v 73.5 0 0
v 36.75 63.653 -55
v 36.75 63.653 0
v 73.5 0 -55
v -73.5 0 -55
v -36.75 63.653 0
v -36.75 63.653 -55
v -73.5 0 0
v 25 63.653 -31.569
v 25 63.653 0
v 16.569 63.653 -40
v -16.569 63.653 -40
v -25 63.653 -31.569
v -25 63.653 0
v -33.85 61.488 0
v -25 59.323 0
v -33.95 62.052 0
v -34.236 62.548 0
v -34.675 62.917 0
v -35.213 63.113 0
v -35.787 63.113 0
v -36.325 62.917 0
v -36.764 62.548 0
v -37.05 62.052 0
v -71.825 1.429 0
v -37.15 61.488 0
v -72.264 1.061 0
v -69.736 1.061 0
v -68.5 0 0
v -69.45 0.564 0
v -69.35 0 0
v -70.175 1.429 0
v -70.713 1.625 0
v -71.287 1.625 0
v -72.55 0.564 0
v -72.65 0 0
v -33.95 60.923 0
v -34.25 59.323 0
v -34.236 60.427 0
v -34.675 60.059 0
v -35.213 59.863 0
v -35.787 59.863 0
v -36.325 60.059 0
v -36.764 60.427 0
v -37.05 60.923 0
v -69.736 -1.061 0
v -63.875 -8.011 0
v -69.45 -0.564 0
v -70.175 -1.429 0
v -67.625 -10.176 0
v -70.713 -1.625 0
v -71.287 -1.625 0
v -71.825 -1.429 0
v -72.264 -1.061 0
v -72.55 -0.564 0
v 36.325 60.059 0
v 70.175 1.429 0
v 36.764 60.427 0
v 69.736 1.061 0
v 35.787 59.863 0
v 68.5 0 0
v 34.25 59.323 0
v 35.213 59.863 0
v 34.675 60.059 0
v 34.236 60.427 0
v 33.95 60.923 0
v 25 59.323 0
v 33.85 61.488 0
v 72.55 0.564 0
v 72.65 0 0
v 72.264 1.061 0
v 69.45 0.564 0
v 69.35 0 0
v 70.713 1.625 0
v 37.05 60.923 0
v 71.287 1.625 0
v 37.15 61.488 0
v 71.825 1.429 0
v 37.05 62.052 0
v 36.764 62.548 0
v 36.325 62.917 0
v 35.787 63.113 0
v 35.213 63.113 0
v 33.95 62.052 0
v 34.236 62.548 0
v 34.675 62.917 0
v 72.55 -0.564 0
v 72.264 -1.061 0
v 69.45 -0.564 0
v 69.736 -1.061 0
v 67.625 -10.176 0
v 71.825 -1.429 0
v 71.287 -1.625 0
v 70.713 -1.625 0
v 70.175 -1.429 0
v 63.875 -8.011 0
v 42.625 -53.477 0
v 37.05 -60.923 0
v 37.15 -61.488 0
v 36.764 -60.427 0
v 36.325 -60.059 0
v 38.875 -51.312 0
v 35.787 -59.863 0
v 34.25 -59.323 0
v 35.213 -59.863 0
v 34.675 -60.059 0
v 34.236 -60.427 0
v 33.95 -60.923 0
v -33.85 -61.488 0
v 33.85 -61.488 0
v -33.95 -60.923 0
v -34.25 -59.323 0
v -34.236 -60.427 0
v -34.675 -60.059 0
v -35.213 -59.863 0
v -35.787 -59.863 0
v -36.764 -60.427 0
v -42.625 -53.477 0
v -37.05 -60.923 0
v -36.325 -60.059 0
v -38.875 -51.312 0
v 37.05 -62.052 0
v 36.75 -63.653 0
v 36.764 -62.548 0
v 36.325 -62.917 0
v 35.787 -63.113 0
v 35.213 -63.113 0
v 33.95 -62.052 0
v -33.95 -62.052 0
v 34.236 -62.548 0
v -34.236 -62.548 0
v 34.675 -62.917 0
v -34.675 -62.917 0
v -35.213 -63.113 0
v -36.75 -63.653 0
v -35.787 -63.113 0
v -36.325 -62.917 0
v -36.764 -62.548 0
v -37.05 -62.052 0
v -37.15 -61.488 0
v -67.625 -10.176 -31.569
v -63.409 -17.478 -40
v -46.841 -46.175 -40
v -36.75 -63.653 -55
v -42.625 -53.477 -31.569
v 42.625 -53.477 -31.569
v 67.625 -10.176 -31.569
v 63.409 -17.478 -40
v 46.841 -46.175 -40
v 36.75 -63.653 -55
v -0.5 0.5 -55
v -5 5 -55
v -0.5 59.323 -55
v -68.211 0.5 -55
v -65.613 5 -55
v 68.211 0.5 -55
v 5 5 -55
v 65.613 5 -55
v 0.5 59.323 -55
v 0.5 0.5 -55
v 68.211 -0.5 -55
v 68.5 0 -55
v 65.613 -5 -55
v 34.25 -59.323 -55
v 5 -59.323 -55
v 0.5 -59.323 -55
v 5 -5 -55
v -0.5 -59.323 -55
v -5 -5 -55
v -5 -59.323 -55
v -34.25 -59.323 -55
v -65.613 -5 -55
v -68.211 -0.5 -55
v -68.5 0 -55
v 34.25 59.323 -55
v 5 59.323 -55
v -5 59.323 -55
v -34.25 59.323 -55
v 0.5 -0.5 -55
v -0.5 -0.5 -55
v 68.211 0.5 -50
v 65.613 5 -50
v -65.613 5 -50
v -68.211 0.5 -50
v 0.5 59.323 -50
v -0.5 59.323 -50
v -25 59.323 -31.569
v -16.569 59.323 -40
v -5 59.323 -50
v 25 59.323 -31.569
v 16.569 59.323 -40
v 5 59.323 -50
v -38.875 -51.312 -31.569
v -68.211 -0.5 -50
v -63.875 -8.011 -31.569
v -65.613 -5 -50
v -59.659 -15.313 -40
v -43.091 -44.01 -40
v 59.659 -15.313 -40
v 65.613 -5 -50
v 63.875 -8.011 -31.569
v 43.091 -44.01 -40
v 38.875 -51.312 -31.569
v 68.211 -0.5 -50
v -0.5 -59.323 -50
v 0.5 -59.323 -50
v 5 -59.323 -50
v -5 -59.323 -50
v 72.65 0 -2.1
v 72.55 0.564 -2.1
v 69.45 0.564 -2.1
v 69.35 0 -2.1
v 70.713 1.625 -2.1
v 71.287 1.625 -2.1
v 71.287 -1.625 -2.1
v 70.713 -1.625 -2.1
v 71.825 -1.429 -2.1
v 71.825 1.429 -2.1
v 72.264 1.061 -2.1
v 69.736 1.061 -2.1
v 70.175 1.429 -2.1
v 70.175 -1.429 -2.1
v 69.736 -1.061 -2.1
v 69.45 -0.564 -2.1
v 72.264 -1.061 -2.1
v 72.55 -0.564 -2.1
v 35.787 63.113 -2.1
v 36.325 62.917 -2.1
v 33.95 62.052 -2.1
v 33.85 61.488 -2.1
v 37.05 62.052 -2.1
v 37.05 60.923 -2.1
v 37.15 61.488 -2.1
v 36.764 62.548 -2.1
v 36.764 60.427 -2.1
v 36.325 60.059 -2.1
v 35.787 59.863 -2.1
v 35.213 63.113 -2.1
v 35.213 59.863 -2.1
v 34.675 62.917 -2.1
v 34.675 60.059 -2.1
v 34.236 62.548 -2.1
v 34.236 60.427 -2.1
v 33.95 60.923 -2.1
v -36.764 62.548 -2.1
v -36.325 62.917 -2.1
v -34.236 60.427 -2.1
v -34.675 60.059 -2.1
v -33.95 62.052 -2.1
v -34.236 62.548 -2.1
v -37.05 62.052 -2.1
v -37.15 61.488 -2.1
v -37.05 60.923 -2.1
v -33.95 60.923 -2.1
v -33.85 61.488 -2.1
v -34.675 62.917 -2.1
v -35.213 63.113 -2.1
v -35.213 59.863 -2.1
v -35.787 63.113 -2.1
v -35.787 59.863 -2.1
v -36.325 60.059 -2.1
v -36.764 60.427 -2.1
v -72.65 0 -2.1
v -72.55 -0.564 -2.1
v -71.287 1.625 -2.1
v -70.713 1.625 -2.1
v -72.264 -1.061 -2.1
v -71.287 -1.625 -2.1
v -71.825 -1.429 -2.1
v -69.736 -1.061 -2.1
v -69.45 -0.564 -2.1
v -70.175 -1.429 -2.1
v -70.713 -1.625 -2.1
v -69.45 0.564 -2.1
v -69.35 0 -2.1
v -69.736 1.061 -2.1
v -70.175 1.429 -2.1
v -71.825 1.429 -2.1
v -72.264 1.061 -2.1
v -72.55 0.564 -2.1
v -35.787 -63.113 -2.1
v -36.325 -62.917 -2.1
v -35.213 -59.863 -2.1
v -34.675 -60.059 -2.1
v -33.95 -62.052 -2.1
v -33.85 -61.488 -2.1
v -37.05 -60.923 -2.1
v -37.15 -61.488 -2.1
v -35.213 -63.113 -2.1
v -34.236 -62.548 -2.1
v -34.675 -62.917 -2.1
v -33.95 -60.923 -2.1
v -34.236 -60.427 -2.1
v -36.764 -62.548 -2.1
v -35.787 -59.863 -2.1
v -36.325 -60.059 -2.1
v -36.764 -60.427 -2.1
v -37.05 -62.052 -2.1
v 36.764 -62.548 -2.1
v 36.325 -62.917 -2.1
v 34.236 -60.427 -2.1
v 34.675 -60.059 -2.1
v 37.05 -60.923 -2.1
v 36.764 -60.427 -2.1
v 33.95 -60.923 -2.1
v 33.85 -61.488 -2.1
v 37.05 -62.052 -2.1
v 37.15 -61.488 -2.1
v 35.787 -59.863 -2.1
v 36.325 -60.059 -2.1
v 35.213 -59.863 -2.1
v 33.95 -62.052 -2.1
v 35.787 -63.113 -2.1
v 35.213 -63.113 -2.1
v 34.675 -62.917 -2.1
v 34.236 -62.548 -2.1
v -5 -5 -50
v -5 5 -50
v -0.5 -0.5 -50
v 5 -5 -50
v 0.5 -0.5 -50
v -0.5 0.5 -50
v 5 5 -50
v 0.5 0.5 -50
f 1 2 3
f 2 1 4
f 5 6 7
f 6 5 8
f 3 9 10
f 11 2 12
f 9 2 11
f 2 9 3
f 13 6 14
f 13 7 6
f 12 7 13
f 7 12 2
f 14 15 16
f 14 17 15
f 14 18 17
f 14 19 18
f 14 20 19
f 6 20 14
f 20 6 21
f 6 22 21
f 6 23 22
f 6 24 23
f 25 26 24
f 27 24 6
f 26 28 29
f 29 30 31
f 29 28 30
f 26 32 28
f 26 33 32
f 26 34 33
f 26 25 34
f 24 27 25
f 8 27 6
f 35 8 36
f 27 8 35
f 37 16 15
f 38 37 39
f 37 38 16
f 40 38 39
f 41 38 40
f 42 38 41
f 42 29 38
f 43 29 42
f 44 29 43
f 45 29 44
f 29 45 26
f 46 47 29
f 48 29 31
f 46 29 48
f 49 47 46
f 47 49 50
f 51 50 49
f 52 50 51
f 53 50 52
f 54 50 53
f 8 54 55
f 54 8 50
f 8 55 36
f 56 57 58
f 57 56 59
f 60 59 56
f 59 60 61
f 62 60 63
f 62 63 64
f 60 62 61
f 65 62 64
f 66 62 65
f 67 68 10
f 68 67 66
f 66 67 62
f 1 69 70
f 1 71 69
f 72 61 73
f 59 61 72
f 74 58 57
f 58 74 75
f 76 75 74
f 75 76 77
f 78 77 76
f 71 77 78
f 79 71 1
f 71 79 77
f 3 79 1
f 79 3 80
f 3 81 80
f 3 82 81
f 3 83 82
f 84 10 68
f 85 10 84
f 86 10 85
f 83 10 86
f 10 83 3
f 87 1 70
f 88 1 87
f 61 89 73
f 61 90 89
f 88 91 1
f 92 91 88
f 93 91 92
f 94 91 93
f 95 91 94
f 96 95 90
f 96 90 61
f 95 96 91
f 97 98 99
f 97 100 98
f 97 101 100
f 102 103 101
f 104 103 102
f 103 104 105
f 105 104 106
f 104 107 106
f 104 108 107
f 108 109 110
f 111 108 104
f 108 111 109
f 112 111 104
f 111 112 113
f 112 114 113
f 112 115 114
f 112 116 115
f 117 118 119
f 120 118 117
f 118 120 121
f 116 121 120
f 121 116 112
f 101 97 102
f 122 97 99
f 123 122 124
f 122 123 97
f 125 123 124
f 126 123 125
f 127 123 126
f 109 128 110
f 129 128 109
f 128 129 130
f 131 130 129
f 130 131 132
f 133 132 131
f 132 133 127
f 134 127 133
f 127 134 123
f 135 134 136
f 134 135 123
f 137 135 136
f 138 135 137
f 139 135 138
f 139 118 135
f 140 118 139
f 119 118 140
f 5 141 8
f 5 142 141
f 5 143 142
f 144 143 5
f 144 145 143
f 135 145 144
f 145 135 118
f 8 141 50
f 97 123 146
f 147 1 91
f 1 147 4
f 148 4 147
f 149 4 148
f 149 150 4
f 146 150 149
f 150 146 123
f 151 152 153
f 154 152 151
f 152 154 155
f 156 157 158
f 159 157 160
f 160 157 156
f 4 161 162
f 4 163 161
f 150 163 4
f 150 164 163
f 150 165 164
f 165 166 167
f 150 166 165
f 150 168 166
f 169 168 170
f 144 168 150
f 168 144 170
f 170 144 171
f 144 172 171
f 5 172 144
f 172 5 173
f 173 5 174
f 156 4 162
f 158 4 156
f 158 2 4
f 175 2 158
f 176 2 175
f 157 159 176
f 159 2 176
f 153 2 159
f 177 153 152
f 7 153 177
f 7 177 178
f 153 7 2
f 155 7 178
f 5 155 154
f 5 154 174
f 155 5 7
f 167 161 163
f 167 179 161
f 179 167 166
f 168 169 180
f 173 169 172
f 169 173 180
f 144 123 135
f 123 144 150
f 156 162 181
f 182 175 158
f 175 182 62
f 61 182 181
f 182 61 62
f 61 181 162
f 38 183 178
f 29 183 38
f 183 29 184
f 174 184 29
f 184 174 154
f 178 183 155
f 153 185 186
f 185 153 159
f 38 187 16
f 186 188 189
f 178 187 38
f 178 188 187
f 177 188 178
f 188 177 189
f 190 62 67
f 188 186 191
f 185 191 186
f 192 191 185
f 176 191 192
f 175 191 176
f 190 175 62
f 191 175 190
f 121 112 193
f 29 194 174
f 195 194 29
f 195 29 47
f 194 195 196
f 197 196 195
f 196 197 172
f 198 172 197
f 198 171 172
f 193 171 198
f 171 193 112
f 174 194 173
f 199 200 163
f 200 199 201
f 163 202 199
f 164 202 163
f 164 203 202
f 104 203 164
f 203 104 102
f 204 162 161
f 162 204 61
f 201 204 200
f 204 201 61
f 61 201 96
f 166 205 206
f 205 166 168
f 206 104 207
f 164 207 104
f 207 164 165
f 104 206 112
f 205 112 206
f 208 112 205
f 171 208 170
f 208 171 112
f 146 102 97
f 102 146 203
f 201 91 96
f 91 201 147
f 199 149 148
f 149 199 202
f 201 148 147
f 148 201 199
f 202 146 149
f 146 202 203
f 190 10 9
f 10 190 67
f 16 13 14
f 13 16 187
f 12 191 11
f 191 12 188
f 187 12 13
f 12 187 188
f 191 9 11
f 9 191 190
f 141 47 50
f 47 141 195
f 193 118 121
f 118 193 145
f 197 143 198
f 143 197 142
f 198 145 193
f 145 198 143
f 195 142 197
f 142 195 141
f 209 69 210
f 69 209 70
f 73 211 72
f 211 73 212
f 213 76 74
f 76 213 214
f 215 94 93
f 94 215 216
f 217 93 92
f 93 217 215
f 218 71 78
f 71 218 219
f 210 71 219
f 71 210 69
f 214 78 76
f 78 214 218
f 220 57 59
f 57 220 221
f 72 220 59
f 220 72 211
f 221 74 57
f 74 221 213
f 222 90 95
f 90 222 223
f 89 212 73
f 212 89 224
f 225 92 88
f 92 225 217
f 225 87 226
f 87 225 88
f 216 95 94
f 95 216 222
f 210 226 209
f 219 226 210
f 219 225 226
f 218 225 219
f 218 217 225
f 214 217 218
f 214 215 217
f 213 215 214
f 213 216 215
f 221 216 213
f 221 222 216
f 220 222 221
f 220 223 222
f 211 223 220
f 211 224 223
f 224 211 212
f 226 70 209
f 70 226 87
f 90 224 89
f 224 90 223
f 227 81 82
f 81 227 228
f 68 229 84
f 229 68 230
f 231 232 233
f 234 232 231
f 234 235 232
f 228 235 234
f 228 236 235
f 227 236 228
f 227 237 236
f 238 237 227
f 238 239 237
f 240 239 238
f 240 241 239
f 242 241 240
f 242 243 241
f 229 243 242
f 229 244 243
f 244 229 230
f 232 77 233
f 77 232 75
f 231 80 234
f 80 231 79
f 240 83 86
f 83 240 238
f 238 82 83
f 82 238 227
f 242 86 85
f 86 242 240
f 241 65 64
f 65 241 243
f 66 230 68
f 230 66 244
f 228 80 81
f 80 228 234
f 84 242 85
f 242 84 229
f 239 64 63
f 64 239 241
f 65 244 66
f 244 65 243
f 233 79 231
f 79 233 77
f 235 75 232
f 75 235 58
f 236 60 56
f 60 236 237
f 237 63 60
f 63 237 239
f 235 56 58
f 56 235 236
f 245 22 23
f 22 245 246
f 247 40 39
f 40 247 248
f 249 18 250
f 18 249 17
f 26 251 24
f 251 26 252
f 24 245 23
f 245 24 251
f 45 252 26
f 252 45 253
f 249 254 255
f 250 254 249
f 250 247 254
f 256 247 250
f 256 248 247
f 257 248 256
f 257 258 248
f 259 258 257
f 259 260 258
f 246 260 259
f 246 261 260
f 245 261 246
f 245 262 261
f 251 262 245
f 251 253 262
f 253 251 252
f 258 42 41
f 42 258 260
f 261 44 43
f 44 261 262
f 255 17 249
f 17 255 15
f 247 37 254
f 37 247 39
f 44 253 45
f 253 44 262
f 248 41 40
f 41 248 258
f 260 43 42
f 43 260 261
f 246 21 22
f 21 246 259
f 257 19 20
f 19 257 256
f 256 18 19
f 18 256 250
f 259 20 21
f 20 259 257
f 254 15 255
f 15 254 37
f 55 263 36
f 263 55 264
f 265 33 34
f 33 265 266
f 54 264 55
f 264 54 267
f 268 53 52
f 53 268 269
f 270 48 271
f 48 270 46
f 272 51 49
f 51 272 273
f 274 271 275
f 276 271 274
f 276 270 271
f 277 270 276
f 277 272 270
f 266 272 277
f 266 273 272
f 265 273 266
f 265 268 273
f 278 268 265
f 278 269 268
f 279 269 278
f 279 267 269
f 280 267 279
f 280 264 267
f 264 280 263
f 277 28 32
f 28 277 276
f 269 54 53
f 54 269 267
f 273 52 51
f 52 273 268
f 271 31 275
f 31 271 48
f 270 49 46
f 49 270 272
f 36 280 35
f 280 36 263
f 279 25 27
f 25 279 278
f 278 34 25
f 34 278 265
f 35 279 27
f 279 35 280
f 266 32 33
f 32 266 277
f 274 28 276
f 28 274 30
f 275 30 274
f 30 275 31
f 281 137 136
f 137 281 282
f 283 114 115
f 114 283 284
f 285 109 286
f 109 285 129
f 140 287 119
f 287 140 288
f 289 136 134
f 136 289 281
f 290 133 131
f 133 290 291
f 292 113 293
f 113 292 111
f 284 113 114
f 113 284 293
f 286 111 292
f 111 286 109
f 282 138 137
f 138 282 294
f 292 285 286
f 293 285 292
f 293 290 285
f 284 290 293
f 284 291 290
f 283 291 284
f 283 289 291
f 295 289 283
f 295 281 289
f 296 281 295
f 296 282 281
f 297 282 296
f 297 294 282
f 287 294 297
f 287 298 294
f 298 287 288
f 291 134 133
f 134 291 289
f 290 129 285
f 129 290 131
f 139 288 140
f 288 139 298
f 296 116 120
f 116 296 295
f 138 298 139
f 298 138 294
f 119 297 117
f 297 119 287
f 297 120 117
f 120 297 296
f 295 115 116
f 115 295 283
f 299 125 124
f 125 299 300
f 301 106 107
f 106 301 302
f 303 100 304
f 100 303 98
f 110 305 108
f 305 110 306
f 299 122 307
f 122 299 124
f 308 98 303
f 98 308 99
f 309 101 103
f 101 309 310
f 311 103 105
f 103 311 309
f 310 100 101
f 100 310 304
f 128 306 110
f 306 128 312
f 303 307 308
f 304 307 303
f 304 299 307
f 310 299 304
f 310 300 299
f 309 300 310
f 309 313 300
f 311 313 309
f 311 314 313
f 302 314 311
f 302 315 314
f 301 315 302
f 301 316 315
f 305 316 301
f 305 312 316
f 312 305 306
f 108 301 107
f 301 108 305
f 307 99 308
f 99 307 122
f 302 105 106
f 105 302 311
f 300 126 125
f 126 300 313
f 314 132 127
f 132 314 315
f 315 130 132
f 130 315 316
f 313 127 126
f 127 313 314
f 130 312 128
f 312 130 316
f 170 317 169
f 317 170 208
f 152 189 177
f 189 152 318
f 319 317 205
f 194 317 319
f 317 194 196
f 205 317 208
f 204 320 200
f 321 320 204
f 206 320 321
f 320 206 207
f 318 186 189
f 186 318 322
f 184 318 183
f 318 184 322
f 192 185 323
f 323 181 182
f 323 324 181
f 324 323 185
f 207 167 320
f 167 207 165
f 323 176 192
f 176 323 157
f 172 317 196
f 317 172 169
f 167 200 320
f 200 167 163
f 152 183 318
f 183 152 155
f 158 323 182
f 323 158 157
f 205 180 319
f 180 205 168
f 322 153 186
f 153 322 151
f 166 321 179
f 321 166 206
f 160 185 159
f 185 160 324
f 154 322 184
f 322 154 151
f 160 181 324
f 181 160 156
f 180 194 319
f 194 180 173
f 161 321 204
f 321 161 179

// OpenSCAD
// file: chamber.scad
//oocyte chamber
//updated by AM Chagas 20210506 -> larger grid
//designed by AM Chagas 20181001 CC BY 4.0 license
//inspired on the design from J Menzies.

wellx = 0.92;//0.3
welly = 0.92;//0.7
wellz = 0.22;

interwell = 0.4;

nwellsx = 10;
nwellsy = 10;

platey = wellx*nwellsx*5+8;//10

platex = welly*nwellsy*1.5+12;//14  
platez = 3.2        ;

//nwellsx = 10;
//nwellsy = 20;

landmarks = 1;

echo(platey);
echo(platex);
echo(platez);


tol = 0.1;
$fn=20;
module egg_chamber(){

/*
module grid(){
    for (x = [0:nwellsx-1]){
        for (y = [0:nwellsy-1]){
            translate([x*(wellx+interwell),y*(welly+interwell),0]){
                cube([wellx,welly,wellz],center=true);
                }//end translate
            }//end for y
    }//end for x
}//end module
*/
module grid(wellx=wellx,welly=welly,holeThrough=0){
    for (x = [-nwellsx/2+0.5:nwellsx/2-0.5]){
        for (y = [-nwellsy/2+0.5:nwellsy/2-0.5]){
            translate([x*(wellx+interwell),y*(welly+interwell),platez/2-wellz/2+0.01]){
                if(holeThrough==1){
                    cube([wellx,welly,wellz+10],center=true);
                    }//endif
                else{
                 cube([wellx,welly,wellz],center=true);
                    }
                }//end translate
            }//end for y
    }//end for x
}//end module




difference(){

//translate([-platex/2+5,-platey/2+5,-platez+wellz-0.001]){
cube([platex,platey,platez],center=true);

//}

/*
translate([0,0,0.2]){
cube([wellx*nwellsx*2+8,welly*nwellsy*2,platez],center=true);
}

*/
//    translate([0,0,-0.5]){
//        minkowski(){
//            sphere(d=0.5);
//cube([18,14,0.5],center=true);    
//        }
//}//end translate

grid(holeThrough=0);

}//end difference
if(landmarks==1){

for (x=[-platex/2,platex/2]){
translate([x,0,0.4]){
cube([2,2,4],center=true);
}//end translate
}//end for

for(y=[-platey/2,platey/2]){
translate([0,y,0.4]){
cube([2,2,4],center=true);
}//end translate
}//end for
}
} // end module egg_chamber

egg_chamber();

/*
translate([-9.5,0,0.05]){
cube([4,15,platez],center=true);
}

translate([9.5,0,0.05]){
cube([4,15,platez],center=true);
}
*/
// file: top_stage.scad
// SAMPLE STAGE TOPPER / ALIGNER
// Aligner to be used in conjunction with alignment card
use <magnet_holes.scad>
use <holders.scad>
use <chamber.scad>

module hexagon(radius,height,thickness){
    translate([0,0,-0.5*height])difference(){
        cylinder(r=radius,h=height,center=true,$fn=6);
        cylinder(r=radius-thickness,h=height,center=true,$fn=6);
    } // end difference
}// end module

module alignment_guide(height, radius){ // used in alignment top
    difference(){
        union(){
            translate([0,0,-4+(height/2)])cylinder(h=height, r=2, center=true, $fn=18);
            translate([0,0,-3.7]){
                cube([2*radius-5,3,0.6], center=true);
                rotate([0,0,90])cube([2*radius-20,3,0.6], center=true);
            }//end translate
        } // end union
        translate([0,0,-4+(height/2)])cylinder(h=height, r=1.5, center=true, $fn=18);
    }// end difference
}// end module

module alignment_top(){
// here's the hexagonal stage-topper
difference(){
hexagon(40,4,6);
translate([0,0,-2])magnet_holes(32);
} // end difference

alignment_guide(4,40);
} // end module

//alignment_top(); // used to roughly align the 

module spirit_level(height, radius){
    translate([0,0,-0.5*4])difference(){
        cylinder(r=40,h=4,center=true,$fn=6);
        translate([12.5,5,0])cylinder(d=5.9,h=30,center=true,$fn=3);
        translate([-12.5,5,0])cylinder(d=5.9,h=30,center=true,$fn=3);
        magnet_holes(32);
        }// end difference
}// end module spirit_level

//spirit_level();

module slide_holder_top(){
    translate([0,0,-4]){
        rotate([180,0,0])difference(){
        hexagon(40,4,6);
        translate([0,0,-2])magnet_holes(32);
    } // end difference
}// end translate
    translate([0,15,1])mic_slide(); // offset Y may be useful
}// end module slide_holder_top

//slide_holder_top();

module ch_hold(){
    difference(){
        translate([0,0,-0.5])cube([28,58,4],center=true);
        scale(1.03)egg_chamber();
        cube(14, center=true);
    }//end difference
}//end module ch_hold

//ch_hold();

module cham_holder_top(y_offset=0){
    difference(){
    translate([0,0,-4]){
        rotate([180,0,0])difference(){
        hexagon(40,4,6);
        translate([0,0,-2])magnet_holes(32);
    } // end difference
}// end translate
translate([0,y_offset,-2]){rotate([0,0,90])cube([28,58,4],center=true);}
}// another difference
    translate([0,y_offset,-1.5]){rotate([0,0,90])ch_hold();} // offset Y may be useful
}// end module cham_holder_top

//cham_holder_top(15);
cham_holder_top(0);
// file: thorlabs_holders.scad
module holder(){
    translate([0,-9.5,0])difference(){
        translate([0,2,5])cube([36,15,10], center=true);
    union(){
    cylinder(h=20,d=6.26,center=true);
    translate([13,0,0])cylinder(h=20,d=6.26,center=true);
    translate([-13,0,0])cylinder(h=20,d=6.26,center=true);
    }// end union
} // end difference
} // end module

//holder();

module triple(radius){
    union(){
    translate([0,-1*radius,0])holder();
    rotate([0,0,120])translate([0,-1*radius,0])holder();
    rotate([0,0,-120])translate([0,-1*radius,0])holder();
    } // end union
} //end module

triple(10);
// file: holders.scad
//models of the glass pieces used to hold samples
// and respective holders

tol = 0.2;
$fn = 30;

wall_t = 2;

//slide 1 ("traditional")
mic_slide_l = 75.7;
mic_slide_w = 25.9;
mic_slide_h = 1.1;


//slide 2 (slide cover)
mc_s = 22;

//slide 3 (slide cover round)
mc_d = 21.7;
mc_h = 0.15;


module mic_slide(){
    difference(){
    cube([mic_slide_l+2*wall_t,mic_slide_w+2*wall_t,mic_slide_h+mic_slide_h+0.2],center=true);
  union(){
    translate([0,0,wall_t/2]){
        cube([mic_slide_l,mic_slide_w,wall_t],center=true);
    }//end translate
    
    translate([0,0,0]){
        cube([mic_slide_l-wall_t,mic_slide_w-wall_t,mic_slide_h+10],center=true);
    }//end translate
    translate([0,0,wall_t/2]){
        cube([mic_slide_l*0.8,mic_slide_w+10,wall_t],center=true);
    }//end translate
}//end union
}//end difference
}//end module

mic_slide();
// file: magnet_holes.scad
//MAGNET HOLES
// current project uses magnets of diameter 3, height 2mm

module magnet_holes(radius){
    translate([0,0,1])union(){ //d=3.3 for tolerance
    translate([0,-1*radius,0])cylinder(d=3.3,h=2,center=true, $fn=12);
    rotate([0,0,120])translate([0,-1*radius,0])cylinder(d=3.3,h=2,center=true, $fn=12);
    rotate([0,0,-120])translate([0,-1*radius,0])cylinder(d=3.3,h=2,center=true, $fn=12);
    } // end union
} //end module

magnet_holes(10); // just an illustration
// main file
// Alignment tool for zeroing the larger delta stage for open 2P

use <magnet_holes.scad>
use <holders.scad>
use <thorlabs_holders.scad>
use <top_stage.scad>

module archway(x,y,z, down){
    intersection(){
        cube([x,y,z],center=true);
        translate([0,0,down]){rotate([0,45,0])cube(z*2,center=true);}
    }// end difference
}// end archway module

//archway(50,60,40,20);

module calibration_body(){
    height = 55;
difference(){
union(){
    hexagon(73.5,height,5);
//translate([0,0,-10])triple_slant(62);
} // end union
rotate([0,0,60])union(){
    translate([0,-73.5,0-20])archway(50,50,40,20);
    rotate([0,0,120])translate([0,-73.5,-20])archway(50,50,40,20);
    rotate([0,0,-120])translate([0,-73.5,-20])archway(50,50,40,20);
}// end union
translate([0,0,-1])holes(71, 6, 2.2, 3.3);
}// end difference
translate([0,0,2.5-height])intersection(){
    cylinder(h=5,r=73.5,center=true,$fn=6);
    difference(){
        union(){
            cube([10,150,5],center=true);
            cube([150,10,5], center=true);
        } // end union
        union(){
            cube([1,150,5],center=true);
            cube([150,1,5], center=true);
        } // end union
    }// end difference
}// end intersection

}// end module calibration_body

calibration_body();

module holes(radius, number, height, hole_width){
    for(i=[0:360/number:360]){
        rotate([0,0,i]){
        //echo(i);
        translate([radius,0,0])cylinder(height,d = hole_width, $fn=18, center=true);
        }// end rotate
    }// end for
}// end module holes

//holes(10, 6, 5, 1.5);

module calibration_top(){
    
    translate([0,0,-4]){
        rotate([180,0,0])difference(){
        //hexagon(40,4,6);
        translate([0,0,-2])cylinder(h=4,r=40,center=true,$fn=6);
        union(){
            translate([0,0,-2])magnet_holes(32);
            holes(15,4,10,3.3);
            //translate([0,0,-3]){rotate([0,0,45])holes(15,4,2,5.6);}
            rotate([0,0,45])holes(15,4,10,3.5); // screw holes
            rotate([0,0,45])cube([20,20,6.2],center=true);
        }// end union
    } // end difference
}// end translation

}// end calibration_top module


module top_cap(){ // has slits and screw holes only
    slit_thickness = 0.2;  //changed from 1mm
    difference(){
        translate([0,0,-2.5])cylinder(h=5,r=40, center=true, $fn=6);
        difference(){
        union(){
            translate([0,0,-1.5]){rotate([0,0,45])holes(15,4,3,6);
            rotate([0,0,45])holes(15,4,10,3.5);}//end translate
            translate([0,0,-2.5])cube([slit_thickness,40,10],center=true);
            translate([0,0,-2.5])cube([40,slit_thickness,10],center=true);
        }// end union
            rotate([0,0,40])cube([20,20,5],center=true); // blocks light going too far
    }//end difference
    }//end difference
}// end module top_cap


module full_top(){
difference(){
union(){
    translate([0,0,5])top_cap();
    calibration_top();
}//end union
    translate([10,20,-15])cube([2,50,30]);
}//end difference
}// end module full_top


//calibration_body();

//full_top();
